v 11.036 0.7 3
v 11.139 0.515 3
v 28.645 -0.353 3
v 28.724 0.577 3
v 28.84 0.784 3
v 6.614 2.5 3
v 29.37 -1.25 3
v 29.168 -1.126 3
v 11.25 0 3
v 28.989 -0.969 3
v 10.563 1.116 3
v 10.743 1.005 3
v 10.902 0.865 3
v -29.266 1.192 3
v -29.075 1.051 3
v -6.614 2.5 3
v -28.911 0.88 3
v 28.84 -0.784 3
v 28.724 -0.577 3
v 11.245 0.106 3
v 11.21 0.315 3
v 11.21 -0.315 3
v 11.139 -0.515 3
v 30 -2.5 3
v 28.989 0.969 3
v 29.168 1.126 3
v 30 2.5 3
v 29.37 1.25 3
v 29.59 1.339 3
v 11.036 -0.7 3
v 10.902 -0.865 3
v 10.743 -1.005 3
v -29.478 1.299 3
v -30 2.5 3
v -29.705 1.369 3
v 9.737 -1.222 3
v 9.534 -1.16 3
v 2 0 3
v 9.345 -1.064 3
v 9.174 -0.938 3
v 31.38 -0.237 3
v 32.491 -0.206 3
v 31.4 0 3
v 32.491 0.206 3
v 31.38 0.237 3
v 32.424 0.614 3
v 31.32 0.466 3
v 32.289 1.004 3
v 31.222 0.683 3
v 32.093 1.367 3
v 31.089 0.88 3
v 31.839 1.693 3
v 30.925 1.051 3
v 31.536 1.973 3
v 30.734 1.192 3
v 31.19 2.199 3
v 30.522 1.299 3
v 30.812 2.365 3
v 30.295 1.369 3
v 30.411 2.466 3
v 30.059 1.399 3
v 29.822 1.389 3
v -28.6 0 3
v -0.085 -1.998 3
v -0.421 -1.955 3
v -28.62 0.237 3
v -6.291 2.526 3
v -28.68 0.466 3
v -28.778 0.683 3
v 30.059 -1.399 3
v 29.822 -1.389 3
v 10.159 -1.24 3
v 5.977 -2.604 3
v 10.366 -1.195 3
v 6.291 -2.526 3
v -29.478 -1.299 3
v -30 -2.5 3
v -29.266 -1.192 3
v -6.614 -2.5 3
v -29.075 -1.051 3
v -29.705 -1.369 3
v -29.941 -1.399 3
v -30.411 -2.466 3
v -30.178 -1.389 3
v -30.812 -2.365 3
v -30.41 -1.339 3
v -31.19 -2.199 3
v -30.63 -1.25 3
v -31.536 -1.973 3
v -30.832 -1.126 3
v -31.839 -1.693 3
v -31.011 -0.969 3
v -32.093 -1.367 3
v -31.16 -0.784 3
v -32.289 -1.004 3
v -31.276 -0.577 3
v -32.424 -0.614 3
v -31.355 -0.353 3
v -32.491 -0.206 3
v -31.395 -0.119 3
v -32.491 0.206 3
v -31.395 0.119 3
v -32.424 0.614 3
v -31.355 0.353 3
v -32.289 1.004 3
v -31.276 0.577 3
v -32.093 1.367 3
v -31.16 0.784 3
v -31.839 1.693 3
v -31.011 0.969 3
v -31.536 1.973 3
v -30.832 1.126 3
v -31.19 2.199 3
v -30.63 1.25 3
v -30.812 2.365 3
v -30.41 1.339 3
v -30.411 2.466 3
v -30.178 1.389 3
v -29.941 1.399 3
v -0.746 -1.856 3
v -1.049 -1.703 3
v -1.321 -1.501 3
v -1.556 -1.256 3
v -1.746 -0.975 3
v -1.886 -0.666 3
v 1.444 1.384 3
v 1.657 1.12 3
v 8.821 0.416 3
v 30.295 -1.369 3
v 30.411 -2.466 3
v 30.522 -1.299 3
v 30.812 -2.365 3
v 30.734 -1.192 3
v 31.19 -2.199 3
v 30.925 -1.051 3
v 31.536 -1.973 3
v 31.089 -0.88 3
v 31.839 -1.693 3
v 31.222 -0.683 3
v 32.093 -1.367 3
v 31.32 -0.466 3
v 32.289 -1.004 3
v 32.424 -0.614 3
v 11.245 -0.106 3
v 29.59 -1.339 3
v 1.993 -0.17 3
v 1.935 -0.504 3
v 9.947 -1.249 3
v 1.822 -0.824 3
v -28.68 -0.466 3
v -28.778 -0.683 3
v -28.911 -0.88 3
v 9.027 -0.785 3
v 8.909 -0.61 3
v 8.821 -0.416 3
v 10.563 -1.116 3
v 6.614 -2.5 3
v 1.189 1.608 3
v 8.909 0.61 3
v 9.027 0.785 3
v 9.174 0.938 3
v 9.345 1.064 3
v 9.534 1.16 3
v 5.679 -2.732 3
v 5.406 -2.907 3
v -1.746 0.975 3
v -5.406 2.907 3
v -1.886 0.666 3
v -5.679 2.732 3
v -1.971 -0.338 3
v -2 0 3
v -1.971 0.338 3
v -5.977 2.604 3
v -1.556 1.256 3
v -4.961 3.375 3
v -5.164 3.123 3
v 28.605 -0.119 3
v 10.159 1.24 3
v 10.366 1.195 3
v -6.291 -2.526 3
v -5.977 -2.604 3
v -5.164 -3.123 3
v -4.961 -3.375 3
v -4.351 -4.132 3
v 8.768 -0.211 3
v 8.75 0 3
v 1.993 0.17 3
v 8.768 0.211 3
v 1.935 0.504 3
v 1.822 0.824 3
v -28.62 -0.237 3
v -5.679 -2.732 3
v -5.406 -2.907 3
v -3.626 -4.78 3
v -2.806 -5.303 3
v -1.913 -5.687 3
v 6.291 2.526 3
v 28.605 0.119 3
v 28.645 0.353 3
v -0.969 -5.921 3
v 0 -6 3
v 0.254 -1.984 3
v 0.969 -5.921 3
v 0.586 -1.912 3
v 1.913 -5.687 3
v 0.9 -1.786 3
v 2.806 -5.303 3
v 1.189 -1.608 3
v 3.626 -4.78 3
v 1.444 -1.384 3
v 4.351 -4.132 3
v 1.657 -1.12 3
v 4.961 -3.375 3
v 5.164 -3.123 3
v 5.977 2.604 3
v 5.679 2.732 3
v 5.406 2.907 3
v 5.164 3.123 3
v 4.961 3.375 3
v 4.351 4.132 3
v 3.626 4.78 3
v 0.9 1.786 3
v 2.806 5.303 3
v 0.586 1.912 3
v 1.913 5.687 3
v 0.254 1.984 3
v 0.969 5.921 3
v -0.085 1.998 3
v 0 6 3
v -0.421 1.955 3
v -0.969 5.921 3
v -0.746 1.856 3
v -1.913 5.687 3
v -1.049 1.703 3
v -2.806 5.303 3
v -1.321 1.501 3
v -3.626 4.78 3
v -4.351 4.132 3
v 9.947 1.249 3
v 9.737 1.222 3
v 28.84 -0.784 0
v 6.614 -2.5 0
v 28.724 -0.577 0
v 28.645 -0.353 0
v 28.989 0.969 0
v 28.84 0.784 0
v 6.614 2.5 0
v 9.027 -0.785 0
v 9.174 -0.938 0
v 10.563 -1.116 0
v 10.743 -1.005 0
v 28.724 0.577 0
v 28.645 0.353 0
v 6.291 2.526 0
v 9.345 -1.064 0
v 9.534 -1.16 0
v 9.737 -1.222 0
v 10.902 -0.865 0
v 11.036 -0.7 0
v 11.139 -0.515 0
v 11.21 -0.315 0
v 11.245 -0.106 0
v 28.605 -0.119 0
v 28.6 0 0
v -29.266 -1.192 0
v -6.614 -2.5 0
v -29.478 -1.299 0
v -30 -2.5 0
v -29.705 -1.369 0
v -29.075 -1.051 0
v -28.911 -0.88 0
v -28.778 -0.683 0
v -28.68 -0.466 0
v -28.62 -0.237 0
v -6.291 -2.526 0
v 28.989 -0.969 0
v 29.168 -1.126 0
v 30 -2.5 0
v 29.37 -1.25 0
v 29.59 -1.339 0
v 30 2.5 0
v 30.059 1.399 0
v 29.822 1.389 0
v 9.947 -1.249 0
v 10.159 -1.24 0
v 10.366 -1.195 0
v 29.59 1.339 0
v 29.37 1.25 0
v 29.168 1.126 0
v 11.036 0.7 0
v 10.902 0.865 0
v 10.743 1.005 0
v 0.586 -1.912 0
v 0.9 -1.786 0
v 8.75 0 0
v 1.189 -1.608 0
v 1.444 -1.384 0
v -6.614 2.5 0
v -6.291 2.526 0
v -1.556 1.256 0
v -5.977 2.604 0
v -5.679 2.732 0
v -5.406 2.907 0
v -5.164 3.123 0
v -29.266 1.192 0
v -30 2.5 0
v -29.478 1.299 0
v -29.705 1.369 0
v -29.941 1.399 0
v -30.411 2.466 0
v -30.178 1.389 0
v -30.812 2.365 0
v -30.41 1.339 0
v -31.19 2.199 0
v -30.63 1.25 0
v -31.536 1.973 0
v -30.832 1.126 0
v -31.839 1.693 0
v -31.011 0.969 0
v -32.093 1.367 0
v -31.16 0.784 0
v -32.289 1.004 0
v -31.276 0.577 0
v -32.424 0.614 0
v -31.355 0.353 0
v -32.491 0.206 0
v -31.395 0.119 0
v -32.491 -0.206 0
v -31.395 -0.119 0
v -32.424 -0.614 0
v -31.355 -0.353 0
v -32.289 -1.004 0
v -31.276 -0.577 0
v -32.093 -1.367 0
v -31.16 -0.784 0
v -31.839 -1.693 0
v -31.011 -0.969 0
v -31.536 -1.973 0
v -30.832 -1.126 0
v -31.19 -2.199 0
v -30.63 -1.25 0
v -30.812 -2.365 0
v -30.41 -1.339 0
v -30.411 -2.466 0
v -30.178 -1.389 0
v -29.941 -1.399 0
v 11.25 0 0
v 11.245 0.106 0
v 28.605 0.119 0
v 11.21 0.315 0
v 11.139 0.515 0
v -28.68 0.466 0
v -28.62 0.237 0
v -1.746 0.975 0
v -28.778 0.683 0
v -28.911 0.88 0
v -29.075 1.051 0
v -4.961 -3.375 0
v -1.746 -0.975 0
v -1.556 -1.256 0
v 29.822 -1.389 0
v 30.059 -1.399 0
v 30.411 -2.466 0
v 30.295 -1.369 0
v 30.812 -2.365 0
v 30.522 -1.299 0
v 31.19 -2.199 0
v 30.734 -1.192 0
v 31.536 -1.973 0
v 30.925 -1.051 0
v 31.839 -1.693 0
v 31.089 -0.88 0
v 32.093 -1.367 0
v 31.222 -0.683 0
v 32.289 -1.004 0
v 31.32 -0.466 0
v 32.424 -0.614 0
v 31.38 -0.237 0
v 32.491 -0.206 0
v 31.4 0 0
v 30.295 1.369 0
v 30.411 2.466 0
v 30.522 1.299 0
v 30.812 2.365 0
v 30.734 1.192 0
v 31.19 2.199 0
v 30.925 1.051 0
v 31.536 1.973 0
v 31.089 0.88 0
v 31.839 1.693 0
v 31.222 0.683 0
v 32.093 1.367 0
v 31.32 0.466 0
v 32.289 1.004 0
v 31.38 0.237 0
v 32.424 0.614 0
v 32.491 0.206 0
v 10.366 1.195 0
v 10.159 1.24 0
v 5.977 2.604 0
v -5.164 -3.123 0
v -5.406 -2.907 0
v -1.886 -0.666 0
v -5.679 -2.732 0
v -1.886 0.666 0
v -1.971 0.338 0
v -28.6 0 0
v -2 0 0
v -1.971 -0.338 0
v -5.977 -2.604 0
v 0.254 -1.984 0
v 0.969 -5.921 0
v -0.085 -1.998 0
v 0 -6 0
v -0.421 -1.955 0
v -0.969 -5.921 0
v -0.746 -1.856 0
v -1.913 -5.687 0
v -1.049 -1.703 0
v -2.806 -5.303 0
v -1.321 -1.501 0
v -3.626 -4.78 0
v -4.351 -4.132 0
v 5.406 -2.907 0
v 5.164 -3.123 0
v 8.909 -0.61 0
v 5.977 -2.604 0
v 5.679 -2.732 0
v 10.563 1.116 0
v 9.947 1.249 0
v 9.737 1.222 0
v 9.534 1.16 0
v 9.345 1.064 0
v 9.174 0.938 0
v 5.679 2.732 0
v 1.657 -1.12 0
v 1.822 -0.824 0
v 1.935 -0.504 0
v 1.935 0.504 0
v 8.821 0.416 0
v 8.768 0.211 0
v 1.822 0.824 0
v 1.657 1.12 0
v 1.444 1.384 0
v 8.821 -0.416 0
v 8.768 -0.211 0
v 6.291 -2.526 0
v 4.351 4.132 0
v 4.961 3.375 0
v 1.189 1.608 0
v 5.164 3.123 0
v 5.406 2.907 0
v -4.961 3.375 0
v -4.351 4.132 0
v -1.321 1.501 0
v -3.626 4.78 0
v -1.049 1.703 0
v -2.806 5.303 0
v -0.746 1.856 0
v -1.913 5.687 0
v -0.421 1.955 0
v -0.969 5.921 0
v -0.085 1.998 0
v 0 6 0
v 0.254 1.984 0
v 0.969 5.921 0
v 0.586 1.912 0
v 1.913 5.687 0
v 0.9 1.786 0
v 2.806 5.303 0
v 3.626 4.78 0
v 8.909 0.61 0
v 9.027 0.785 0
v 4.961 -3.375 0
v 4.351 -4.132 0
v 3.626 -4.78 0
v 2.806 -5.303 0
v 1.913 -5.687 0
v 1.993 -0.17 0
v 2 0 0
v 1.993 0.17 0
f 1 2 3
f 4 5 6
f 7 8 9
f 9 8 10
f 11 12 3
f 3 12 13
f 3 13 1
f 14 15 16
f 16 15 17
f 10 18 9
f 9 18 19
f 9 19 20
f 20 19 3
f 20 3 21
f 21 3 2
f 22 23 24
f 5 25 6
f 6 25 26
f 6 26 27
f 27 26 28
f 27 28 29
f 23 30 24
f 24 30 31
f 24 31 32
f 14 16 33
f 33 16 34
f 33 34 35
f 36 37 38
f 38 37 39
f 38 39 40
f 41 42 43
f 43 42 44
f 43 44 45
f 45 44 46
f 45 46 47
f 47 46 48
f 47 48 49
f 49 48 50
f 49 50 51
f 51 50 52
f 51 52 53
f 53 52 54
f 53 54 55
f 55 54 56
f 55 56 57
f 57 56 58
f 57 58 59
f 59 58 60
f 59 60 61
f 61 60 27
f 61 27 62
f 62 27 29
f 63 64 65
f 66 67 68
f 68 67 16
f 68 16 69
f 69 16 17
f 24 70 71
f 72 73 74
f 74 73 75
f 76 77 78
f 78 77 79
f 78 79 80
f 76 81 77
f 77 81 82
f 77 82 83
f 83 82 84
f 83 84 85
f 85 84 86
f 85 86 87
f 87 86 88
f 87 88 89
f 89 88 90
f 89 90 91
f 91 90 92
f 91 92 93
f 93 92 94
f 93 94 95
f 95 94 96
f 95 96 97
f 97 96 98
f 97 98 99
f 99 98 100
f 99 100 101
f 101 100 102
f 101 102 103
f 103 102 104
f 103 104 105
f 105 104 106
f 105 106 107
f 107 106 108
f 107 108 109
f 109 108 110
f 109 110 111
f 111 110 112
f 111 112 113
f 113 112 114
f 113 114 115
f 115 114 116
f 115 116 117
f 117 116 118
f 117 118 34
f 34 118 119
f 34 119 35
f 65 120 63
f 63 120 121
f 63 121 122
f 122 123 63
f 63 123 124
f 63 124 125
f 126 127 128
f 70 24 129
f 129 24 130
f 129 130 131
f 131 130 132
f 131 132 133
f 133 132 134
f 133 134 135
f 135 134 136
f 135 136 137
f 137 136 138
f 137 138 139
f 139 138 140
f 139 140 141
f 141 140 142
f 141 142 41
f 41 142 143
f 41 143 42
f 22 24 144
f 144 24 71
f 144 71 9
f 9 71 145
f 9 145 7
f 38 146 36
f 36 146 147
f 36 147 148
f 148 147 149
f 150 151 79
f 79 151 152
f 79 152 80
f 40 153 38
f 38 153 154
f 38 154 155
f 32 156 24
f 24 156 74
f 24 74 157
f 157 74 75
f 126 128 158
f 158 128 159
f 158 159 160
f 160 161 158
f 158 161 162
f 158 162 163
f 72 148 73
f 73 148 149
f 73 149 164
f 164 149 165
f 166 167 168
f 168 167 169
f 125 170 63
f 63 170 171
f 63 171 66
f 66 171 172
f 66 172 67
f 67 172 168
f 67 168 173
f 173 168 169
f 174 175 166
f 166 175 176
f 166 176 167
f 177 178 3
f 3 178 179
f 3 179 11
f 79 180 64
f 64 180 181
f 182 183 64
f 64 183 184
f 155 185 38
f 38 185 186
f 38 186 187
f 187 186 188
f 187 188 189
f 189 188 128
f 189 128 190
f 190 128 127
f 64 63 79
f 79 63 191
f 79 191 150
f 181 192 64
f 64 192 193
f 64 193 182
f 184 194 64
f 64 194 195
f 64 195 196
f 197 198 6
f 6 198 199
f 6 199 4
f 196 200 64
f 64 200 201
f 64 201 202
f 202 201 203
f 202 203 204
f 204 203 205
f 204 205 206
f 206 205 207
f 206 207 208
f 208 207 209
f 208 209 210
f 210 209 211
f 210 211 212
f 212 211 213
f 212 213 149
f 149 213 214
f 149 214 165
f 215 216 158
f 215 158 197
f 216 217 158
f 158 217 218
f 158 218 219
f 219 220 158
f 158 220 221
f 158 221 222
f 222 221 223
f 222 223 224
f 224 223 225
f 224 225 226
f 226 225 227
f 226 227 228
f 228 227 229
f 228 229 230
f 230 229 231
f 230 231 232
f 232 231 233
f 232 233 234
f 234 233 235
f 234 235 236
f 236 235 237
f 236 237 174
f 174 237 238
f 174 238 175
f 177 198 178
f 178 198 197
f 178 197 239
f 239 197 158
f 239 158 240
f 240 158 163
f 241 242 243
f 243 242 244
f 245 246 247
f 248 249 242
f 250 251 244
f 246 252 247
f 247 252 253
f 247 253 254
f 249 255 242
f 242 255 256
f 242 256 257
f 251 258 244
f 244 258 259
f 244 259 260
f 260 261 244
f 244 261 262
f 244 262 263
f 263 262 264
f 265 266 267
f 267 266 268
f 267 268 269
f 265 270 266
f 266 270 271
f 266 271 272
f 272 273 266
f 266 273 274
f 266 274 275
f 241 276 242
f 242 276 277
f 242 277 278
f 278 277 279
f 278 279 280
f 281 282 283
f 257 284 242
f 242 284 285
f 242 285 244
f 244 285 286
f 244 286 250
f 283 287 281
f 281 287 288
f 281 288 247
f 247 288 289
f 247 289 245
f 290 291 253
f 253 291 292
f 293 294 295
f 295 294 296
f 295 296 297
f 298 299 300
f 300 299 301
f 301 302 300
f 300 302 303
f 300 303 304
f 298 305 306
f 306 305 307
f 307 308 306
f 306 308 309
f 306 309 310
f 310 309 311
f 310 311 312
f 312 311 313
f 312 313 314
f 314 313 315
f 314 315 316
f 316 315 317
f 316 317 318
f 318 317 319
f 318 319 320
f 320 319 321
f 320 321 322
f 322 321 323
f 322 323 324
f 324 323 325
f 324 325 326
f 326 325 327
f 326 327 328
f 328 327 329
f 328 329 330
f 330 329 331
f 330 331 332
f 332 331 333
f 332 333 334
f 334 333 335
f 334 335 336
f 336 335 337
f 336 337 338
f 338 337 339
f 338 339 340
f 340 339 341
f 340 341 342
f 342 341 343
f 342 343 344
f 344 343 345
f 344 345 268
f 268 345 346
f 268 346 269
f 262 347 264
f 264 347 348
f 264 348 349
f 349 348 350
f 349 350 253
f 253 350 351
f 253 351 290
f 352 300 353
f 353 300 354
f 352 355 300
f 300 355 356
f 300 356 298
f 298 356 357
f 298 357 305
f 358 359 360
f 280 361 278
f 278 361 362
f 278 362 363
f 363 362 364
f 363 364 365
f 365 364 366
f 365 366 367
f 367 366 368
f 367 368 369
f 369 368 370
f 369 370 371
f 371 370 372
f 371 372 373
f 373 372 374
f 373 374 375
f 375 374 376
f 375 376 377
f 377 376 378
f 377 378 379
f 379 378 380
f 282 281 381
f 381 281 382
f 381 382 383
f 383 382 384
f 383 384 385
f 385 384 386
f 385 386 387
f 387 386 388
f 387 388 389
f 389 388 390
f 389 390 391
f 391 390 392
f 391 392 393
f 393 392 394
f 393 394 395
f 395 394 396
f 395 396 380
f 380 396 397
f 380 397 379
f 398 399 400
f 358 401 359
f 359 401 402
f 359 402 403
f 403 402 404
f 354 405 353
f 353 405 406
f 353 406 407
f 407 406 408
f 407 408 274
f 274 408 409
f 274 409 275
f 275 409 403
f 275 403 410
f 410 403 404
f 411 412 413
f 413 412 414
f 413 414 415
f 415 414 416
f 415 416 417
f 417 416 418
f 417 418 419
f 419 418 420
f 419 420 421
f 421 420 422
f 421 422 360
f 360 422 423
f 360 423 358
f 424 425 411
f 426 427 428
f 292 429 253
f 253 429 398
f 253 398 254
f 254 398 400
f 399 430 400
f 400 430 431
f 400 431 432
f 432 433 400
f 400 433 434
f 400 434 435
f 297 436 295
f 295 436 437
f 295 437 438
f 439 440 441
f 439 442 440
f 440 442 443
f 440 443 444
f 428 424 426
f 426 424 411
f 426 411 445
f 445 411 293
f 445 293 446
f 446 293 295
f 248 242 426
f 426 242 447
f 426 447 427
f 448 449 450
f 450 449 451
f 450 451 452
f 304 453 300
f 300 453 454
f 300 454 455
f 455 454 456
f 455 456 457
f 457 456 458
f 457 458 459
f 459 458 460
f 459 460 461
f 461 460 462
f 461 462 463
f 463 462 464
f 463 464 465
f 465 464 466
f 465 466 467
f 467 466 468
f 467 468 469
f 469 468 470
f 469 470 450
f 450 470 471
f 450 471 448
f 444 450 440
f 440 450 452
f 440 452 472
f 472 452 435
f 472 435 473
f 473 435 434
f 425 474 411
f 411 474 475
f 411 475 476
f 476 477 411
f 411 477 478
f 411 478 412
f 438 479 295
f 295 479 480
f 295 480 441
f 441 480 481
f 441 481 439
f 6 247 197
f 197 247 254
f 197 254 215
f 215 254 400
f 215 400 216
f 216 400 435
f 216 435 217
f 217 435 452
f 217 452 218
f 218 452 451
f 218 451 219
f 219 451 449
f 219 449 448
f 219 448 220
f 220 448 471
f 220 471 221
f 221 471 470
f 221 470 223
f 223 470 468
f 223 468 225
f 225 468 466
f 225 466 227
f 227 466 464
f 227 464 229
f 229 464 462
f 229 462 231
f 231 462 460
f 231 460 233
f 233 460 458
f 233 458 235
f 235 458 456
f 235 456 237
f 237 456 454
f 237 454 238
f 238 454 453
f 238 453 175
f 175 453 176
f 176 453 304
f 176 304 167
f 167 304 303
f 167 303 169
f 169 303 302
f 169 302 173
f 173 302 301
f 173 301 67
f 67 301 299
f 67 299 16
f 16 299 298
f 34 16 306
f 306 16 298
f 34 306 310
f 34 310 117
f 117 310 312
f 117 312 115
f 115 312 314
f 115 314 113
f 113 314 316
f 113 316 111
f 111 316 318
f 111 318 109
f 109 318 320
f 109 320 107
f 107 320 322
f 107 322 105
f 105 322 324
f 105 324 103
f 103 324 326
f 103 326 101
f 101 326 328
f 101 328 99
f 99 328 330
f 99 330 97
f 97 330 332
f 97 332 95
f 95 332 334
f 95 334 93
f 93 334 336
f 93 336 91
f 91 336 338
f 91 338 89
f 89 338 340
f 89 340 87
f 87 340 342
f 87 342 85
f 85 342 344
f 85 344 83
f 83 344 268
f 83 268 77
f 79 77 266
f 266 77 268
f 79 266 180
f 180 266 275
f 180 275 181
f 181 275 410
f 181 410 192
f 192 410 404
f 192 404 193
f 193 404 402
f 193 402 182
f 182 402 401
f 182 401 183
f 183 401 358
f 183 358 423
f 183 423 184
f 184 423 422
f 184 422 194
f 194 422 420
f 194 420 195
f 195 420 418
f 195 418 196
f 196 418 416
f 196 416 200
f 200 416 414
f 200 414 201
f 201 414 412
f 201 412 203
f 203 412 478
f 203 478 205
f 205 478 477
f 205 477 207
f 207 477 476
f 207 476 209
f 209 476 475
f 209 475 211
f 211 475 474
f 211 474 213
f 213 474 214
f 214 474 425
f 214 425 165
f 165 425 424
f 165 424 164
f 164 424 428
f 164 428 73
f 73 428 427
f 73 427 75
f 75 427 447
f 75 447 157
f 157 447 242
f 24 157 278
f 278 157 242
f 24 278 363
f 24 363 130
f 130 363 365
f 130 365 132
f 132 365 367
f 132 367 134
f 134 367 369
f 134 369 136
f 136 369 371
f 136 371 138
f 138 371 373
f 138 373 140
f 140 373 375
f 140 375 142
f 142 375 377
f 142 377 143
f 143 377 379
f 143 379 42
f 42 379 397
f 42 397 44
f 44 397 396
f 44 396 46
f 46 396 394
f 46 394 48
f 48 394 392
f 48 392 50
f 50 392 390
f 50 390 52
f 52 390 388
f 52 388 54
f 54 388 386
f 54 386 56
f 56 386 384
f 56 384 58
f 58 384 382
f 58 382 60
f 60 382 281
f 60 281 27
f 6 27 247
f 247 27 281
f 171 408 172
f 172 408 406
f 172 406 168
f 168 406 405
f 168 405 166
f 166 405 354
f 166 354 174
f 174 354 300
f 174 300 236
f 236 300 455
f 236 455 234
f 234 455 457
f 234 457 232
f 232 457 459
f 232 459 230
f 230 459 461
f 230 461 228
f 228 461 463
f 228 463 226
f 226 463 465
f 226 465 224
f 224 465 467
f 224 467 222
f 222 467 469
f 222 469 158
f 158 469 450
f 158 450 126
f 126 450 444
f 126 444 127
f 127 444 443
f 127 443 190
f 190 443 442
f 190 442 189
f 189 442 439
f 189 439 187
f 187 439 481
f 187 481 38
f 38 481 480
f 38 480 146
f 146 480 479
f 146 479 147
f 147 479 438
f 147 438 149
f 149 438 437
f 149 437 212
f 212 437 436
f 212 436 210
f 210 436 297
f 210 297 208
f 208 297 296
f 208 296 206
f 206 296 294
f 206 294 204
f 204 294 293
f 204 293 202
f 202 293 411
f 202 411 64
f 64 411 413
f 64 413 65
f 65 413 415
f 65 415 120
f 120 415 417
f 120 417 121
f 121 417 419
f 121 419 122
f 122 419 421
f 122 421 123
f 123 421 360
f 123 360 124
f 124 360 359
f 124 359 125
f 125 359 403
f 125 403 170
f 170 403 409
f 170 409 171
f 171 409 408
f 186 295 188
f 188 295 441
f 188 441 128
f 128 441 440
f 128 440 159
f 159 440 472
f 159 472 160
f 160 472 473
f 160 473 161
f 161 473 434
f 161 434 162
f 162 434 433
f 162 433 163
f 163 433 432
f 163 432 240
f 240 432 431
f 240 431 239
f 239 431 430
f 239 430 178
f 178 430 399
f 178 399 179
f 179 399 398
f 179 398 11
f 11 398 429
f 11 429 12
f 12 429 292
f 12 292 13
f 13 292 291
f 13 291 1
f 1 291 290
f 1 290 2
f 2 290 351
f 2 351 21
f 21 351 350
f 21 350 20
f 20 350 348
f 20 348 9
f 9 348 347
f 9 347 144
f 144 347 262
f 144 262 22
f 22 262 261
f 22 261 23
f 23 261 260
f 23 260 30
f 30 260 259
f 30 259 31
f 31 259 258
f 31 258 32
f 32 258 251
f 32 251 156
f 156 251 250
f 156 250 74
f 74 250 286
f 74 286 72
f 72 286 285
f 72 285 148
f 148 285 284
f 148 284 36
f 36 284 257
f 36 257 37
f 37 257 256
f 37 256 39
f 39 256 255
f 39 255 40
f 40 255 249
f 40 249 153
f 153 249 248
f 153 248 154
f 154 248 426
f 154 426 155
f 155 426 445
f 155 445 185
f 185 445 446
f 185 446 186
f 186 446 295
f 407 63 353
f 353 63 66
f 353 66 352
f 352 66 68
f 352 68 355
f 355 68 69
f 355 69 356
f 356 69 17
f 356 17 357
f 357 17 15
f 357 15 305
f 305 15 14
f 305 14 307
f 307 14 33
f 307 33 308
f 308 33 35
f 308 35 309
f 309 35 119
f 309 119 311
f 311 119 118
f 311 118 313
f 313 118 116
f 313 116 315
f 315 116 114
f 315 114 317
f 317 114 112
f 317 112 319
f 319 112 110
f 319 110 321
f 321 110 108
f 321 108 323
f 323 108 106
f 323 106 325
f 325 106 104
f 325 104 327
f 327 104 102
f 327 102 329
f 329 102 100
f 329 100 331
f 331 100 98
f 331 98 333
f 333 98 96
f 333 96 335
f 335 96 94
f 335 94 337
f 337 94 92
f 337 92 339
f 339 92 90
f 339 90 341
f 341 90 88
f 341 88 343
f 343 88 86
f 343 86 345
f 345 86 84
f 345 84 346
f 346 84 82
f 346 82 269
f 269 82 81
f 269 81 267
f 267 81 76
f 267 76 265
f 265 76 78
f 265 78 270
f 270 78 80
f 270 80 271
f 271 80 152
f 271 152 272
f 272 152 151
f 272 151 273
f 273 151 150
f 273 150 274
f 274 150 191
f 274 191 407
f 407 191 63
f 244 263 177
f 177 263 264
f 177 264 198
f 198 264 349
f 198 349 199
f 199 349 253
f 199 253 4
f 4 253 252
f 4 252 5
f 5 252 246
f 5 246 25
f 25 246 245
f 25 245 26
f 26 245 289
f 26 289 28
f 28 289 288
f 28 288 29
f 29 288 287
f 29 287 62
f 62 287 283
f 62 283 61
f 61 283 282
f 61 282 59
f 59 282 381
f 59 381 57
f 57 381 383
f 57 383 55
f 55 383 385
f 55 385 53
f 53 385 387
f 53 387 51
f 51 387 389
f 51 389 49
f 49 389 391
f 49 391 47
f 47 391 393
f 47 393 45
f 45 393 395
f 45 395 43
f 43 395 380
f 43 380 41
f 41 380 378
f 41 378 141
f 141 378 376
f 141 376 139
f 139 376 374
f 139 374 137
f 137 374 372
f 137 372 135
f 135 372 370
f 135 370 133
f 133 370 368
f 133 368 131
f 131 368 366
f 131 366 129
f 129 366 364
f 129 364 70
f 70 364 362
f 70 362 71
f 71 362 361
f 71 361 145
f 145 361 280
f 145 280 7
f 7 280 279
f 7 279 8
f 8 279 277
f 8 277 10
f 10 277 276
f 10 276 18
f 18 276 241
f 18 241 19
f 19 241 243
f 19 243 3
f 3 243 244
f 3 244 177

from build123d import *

# Parameters (mm, degrees)
ESBO_O1_R                = 2
ESBO_O1_R_2              = 1.25
RESSALTO_EXTRUS_O1_DEPTH = 3
CORTE_EXTRUS_O1_START    = -4
ESBO_O6_R                = 1.4
CORTE_EXTRUS_O1_DEPTH    = 5


with BuildPart() as part:
    # Esboço1 → Ressalto-extrusão1 (new body)
    with BuildSketch(Plane.XY):
        with BuildLine():
            Line((6.614378278, 2.5), (30, 2.5))
            ThreePointArc((30, 2.5), (31.767766953, 1.767766953), (32.5, 0))
            ThreePointArc((32.5, 0), (31.767766953, -1.767766953), (30, -2.5))
            Line((30, -2.5), (6.614378278, -2.5))
            ThreePointArc((6.614378278, -2.5), (5.678963931, -2.732233047), (4.960783708, -3.375))
            ThreePointArc((4.960783708, -3.375), (0, -6), (-4.960783708, -3.375))
            ThreePointArc((-4.960783708, -3.375), (-5.678963931, -2.732233047), (-6.614378278, -2.5))
            Line((-6.614378278, -2.5), (-30, -2.5))
            ThreePointArc((-30, -2.5), (-31.767766953, -1.767766953), (-32.5, 0))
            ThreePointArc((-32.5, 0), (-31.767766953, 1.767766953), (-30, 2.5))
            Line((-30, 2.5), (-6.614378278, 2.5))
            ThreePointArc((-6.614378278, 2.5), (-5.678963931, 2.732233047), (-4.960783708, 3.375))
            ThreePointArc((-4.960783708, 3.375), (0, 6), (4.960783708, 3.375))
            ThreePointArc((4.960783708, 3.375), (5.678963931, 2.732233047), (6.614378278, 2.5))
        make_face()
        Circle(ESBO_O1_R, mode=Mode.SUBTRACT)
        with Locations((10, 0)):
            Circle(ESBO_O1_R_2, mode=Mode.SUBTRACT)
    extrude(amount=RESSALTO_EXTRUS_O1_DEPTH)

    # Esboço6 → Corte-extrusão1 (cut)
    with BuildSketch(Plane(origin=(0, 0, 3), x_dir=(0, 1, 0), z_dir=(0, 0, 1)).offset(CORTE_EXTRUS_O1_START)):
        with Locations((0, 30)):
            Circle(ESBO_O6_R)
    corte_extrus_o1 = extrude(amount=CORTE_EXTRUS_O1_DEPTH, mode=Mode.SUBTRACT)

    # Espelhar1: Corte-extrusão1 across plane
    add(corte_extrus_o1.mirror(Plane(origin=(0, 0, 0), x_dir=(0, 0, 1), z_dir=(1, 0, 0))), mode=Mode.SUBTRACT)


solid = part.part
